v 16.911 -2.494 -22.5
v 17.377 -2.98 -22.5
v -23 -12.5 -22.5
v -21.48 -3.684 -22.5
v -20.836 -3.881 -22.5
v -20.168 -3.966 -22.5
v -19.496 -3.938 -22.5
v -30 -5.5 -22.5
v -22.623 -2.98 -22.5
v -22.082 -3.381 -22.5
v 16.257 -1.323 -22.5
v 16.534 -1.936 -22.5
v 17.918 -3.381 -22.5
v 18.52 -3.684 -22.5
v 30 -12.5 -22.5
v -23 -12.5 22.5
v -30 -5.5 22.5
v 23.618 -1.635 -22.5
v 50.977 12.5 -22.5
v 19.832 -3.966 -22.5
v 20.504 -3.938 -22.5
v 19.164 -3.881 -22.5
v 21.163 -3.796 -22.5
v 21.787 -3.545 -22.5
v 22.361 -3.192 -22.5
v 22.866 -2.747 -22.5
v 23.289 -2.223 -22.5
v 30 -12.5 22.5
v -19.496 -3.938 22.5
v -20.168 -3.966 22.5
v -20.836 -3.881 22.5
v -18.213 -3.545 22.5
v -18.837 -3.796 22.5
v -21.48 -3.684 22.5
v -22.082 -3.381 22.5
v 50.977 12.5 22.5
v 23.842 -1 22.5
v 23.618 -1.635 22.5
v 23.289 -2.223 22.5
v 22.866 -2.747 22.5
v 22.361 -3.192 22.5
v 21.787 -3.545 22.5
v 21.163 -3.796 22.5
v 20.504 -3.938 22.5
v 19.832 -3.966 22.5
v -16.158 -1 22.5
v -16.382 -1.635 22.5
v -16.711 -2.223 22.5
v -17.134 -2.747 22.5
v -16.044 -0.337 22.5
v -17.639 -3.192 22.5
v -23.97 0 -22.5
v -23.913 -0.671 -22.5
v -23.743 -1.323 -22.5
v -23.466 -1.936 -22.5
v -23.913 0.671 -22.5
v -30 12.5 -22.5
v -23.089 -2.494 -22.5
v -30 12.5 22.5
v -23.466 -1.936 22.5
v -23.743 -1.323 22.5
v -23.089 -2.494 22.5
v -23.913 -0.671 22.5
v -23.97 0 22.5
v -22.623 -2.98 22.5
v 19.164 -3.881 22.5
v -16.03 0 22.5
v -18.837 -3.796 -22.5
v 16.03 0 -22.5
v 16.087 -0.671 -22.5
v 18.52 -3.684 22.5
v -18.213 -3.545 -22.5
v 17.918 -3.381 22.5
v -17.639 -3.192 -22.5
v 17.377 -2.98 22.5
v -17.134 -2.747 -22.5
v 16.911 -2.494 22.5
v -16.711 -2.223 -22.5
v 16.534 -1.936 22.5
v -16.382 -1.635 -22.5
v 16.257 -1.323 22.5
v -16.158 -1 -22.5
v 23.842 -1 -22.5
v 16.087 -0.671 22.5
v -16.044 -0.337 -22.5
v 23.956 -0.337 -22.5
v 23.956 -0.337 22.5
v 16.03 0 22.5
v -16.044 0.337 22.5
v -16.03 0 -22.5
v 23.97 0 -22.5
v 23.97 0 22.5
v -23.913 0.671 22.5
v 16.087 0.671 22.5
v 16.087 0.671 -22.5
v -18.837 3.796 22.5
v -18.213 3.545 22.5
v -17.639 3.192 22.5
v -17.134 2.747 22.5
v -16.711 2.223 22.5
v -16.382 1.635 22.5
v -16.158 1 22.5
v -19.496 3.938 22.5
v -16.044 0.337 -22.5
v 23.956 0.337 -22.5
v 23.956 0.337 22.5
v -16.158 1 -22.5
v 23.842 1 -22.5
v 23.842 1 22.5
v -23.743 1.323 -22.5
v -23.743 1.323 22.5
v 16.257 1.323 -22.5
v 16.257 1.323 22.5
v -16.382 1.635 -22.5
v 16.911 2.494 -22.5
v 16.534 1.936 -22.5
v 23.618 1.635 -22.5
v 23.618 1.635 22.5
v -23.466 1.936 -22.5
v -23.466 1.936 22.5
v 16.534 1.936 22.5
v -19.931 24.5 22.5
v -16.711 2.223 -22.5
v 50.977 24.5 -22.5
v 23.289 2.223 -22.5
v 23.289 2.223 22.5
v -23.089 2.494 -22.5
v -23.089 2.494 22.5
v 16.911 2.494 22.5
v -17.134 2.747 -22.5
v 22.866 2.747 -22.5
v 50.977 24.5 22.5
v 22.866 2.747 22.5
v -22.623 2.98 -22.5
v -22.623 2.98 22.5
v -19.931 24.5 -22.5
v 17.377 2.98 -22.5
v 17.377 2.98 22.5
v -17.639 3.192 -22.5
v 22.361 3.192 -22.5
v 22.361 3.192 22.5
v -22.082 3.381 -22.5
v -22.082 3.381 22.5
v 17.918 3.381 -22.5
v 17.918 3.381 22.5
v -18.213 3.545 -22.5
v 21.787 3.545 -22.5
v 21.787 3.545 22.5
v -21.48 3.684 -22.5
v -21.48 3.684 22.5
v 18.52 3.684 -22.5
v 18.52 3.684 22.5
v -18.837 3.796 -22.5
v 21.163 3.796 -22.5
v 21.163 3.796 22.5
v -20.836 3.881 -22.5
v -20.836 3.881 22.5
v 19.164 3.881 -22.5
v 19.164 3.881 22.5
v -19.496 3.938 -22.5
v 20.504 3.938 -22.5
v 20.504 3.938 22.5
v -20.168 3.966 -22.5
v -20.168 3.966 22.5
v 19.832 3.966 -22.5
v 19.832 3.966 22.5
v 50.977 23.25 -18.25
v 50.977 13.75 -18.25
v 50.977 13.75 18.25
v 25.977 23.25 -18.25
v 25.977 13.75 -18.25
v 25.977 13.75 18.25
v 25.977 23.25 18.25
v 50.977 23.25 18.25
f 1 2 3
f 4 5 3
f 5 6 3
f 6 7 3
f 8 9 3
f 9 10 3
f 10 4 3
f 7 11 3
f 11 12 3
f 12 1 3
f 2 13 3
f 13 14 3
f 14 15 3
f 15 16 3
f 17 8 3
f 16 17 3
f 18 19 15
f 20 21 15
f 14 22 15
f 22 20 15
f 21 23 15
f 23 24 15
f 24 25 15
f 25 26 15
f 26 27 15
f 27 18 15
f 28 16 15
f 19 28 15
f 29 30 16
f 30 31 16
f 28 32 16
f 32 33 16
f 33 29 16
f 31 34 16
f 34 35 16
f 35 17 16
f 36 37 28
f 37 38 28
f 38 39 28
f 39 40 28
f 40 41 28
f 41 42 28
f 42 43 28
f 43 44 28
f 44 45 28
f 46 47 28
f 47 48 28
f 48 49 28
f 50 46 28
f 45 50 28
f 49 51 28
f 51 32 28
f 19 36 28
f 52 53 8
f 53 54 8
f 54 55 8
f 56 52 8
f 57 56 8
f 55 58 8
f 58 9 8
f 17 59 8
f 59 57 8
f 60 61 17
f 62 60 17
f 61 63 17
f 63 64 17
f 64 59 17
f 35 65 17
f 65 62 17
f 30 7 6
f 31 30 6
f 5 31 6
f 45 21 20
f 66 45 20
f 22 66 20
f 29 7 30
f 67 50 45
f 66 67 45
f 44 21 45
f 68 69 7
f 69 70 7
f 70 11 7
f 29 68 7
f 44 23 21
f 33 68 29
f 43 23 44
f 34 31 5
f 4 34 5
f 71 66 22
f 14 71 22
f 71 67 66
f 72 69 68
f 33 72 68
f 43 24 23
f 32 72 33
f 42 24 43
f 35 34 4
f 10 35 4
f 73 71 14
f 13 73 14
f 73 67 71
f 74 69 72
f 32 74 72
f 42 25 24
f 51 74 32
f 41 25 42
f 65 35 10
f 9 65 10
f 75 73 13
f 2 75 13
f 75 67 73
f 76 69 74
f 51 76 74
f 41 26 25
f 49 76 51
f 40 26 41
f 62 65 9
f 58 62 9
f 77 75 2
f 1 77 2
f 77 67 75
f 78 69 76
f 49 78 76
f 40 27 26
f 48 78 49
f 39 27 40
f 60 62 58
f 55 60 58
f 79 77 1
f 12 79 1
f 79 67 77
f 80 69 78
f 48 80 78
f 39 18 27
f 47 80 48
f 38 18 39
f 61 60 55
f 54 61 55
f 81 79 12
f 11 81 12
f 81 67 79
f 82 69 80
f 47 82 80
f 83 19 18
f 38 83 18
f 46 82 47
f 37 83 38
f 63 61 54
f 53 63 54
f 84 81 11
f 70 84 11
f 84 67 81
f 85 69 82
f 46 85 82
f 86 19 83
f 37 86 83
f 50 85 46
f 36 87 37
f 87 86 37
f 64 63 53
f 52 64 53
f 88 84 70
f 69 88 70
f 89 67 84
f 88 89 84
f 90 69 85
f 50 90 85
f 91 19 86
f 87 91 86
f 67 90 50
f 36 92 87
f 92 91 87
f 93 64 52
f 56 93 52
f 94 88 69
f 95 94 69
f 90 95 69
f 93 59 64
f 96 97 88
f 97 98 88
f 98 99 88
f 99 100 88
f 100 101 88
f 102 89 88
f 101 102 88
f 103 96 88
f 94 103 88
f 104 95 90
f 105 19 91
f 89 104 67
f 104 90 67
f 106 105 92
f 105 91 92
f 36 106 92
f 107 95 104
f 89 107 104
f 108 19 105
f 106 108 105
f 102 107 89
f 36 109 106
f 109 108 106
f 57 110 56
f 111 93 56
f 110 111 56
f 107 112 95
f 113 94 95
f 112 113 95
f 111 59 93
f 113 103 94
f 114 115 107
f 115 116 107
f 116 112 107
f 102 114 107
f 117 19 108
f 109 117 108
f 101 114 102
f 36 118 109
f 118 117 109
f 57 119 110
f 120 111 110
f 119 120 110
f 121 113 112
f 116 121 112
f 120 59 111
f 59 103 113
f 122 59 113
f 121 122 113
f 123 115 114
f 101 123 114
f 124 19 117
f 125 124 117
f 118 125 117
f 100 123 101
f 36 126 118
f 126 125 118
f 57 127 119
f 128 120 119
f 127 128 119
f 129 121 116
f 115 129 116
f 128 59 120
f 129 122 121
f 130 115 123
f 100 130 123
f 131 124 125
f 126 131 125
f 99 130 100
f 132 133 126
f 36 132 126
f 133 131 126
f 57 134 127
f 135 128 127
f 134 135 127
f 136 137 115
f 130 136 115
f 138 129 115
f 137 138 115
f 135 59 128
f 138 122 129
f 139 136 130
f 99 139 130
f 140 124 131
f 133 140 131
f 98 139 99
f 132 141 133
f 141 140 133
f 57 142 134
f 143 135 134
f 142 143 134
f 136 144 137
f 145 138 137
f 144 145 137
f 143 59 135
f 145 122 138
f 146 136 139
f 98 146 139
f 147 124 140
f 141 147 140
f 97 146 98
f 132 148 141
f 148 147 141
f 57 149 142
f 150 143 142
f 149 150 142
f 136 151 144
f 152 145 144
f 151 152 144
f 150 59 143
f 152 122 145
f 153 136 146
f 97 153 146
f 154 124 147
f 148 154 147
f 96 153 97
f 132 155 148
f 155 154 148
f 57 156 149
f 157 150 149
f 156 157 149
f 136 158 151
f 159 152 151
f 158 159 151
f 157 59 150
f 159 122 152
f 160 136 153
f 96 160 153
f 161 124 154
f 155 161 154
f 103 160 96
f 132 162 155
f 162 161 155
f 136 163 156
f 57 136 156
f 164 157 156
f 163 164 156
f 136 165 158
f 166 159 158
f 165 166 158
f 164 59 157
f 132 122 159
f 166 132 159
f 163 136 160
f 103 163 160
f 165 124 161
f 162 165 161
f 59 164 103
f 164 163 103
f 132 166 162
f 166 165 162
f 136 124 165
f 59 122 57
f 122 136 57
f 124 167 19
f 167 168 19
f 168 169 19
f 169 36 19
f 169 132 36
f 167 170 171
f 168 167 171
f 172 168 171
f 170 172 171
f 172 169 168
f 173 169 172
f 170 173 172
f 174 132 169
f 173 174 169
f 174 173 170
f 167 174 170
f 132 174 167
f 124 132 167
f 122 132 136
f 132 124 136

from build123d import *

# Parameters (mm, degrees)
ESBO_O1_R                = 3.97
RESSALTO_EXTRUS_O1_DEPTH = 22.5
ESBO_O2_W                = 36.5
ESBO_O2_H                = 9.5
CORTE_EXTRUS_O1_DEPTH    = 25
CHANFRO1_SIZE            = 7


with BuildPart() as part:
    # Esboço1 → Ressalto-extrusão1 (new body, symmetric)
    with BuildSketch(Plane.XY):
        Polygon((30, -12.5), (-30, -12.5), (-30, 12.5), (-19.930804426, 24.5), (30.977490779, 24.5), (50.977490779, 24.5), (50.977490779, 12.5), align=None)
        with Locations((-20, 0)):
            Circle(ESBO_O1_R, mode=Mode.SUBTRACT)
        with Locations((20, 0)):
            Circle(ESBO_O1_R, mode=Mode.SUBTRACT)
    extrude(amount=RESSALTO_EXTRUS_O1_DEPTH, both=True)

    # Esboço2 → Corte-extrusão1 (cut)
    with BuildSketch(Plane(origin=(50.977490779, 0, 0), x_dir=(0, 0, -1), z_dir=(1, 0, 0))):
        with Locations((0, 18.5)):
            Rectangle(ESBO_O2_W, ESBO_O2_H)
    extrude(amount=-CORTE_EXTRUS_O1_DEPTH, mode=Mode.SUBTRACT)

    # Chanfro1
    chanfro1_edges = [part.edges().sort_by_distance(p)[0] for p in [
        (-30, -12.5, 0),
    ]]
    chamfer(chanfro1_edges, length=CHANFRO1_SIZE)


solid = part.part
